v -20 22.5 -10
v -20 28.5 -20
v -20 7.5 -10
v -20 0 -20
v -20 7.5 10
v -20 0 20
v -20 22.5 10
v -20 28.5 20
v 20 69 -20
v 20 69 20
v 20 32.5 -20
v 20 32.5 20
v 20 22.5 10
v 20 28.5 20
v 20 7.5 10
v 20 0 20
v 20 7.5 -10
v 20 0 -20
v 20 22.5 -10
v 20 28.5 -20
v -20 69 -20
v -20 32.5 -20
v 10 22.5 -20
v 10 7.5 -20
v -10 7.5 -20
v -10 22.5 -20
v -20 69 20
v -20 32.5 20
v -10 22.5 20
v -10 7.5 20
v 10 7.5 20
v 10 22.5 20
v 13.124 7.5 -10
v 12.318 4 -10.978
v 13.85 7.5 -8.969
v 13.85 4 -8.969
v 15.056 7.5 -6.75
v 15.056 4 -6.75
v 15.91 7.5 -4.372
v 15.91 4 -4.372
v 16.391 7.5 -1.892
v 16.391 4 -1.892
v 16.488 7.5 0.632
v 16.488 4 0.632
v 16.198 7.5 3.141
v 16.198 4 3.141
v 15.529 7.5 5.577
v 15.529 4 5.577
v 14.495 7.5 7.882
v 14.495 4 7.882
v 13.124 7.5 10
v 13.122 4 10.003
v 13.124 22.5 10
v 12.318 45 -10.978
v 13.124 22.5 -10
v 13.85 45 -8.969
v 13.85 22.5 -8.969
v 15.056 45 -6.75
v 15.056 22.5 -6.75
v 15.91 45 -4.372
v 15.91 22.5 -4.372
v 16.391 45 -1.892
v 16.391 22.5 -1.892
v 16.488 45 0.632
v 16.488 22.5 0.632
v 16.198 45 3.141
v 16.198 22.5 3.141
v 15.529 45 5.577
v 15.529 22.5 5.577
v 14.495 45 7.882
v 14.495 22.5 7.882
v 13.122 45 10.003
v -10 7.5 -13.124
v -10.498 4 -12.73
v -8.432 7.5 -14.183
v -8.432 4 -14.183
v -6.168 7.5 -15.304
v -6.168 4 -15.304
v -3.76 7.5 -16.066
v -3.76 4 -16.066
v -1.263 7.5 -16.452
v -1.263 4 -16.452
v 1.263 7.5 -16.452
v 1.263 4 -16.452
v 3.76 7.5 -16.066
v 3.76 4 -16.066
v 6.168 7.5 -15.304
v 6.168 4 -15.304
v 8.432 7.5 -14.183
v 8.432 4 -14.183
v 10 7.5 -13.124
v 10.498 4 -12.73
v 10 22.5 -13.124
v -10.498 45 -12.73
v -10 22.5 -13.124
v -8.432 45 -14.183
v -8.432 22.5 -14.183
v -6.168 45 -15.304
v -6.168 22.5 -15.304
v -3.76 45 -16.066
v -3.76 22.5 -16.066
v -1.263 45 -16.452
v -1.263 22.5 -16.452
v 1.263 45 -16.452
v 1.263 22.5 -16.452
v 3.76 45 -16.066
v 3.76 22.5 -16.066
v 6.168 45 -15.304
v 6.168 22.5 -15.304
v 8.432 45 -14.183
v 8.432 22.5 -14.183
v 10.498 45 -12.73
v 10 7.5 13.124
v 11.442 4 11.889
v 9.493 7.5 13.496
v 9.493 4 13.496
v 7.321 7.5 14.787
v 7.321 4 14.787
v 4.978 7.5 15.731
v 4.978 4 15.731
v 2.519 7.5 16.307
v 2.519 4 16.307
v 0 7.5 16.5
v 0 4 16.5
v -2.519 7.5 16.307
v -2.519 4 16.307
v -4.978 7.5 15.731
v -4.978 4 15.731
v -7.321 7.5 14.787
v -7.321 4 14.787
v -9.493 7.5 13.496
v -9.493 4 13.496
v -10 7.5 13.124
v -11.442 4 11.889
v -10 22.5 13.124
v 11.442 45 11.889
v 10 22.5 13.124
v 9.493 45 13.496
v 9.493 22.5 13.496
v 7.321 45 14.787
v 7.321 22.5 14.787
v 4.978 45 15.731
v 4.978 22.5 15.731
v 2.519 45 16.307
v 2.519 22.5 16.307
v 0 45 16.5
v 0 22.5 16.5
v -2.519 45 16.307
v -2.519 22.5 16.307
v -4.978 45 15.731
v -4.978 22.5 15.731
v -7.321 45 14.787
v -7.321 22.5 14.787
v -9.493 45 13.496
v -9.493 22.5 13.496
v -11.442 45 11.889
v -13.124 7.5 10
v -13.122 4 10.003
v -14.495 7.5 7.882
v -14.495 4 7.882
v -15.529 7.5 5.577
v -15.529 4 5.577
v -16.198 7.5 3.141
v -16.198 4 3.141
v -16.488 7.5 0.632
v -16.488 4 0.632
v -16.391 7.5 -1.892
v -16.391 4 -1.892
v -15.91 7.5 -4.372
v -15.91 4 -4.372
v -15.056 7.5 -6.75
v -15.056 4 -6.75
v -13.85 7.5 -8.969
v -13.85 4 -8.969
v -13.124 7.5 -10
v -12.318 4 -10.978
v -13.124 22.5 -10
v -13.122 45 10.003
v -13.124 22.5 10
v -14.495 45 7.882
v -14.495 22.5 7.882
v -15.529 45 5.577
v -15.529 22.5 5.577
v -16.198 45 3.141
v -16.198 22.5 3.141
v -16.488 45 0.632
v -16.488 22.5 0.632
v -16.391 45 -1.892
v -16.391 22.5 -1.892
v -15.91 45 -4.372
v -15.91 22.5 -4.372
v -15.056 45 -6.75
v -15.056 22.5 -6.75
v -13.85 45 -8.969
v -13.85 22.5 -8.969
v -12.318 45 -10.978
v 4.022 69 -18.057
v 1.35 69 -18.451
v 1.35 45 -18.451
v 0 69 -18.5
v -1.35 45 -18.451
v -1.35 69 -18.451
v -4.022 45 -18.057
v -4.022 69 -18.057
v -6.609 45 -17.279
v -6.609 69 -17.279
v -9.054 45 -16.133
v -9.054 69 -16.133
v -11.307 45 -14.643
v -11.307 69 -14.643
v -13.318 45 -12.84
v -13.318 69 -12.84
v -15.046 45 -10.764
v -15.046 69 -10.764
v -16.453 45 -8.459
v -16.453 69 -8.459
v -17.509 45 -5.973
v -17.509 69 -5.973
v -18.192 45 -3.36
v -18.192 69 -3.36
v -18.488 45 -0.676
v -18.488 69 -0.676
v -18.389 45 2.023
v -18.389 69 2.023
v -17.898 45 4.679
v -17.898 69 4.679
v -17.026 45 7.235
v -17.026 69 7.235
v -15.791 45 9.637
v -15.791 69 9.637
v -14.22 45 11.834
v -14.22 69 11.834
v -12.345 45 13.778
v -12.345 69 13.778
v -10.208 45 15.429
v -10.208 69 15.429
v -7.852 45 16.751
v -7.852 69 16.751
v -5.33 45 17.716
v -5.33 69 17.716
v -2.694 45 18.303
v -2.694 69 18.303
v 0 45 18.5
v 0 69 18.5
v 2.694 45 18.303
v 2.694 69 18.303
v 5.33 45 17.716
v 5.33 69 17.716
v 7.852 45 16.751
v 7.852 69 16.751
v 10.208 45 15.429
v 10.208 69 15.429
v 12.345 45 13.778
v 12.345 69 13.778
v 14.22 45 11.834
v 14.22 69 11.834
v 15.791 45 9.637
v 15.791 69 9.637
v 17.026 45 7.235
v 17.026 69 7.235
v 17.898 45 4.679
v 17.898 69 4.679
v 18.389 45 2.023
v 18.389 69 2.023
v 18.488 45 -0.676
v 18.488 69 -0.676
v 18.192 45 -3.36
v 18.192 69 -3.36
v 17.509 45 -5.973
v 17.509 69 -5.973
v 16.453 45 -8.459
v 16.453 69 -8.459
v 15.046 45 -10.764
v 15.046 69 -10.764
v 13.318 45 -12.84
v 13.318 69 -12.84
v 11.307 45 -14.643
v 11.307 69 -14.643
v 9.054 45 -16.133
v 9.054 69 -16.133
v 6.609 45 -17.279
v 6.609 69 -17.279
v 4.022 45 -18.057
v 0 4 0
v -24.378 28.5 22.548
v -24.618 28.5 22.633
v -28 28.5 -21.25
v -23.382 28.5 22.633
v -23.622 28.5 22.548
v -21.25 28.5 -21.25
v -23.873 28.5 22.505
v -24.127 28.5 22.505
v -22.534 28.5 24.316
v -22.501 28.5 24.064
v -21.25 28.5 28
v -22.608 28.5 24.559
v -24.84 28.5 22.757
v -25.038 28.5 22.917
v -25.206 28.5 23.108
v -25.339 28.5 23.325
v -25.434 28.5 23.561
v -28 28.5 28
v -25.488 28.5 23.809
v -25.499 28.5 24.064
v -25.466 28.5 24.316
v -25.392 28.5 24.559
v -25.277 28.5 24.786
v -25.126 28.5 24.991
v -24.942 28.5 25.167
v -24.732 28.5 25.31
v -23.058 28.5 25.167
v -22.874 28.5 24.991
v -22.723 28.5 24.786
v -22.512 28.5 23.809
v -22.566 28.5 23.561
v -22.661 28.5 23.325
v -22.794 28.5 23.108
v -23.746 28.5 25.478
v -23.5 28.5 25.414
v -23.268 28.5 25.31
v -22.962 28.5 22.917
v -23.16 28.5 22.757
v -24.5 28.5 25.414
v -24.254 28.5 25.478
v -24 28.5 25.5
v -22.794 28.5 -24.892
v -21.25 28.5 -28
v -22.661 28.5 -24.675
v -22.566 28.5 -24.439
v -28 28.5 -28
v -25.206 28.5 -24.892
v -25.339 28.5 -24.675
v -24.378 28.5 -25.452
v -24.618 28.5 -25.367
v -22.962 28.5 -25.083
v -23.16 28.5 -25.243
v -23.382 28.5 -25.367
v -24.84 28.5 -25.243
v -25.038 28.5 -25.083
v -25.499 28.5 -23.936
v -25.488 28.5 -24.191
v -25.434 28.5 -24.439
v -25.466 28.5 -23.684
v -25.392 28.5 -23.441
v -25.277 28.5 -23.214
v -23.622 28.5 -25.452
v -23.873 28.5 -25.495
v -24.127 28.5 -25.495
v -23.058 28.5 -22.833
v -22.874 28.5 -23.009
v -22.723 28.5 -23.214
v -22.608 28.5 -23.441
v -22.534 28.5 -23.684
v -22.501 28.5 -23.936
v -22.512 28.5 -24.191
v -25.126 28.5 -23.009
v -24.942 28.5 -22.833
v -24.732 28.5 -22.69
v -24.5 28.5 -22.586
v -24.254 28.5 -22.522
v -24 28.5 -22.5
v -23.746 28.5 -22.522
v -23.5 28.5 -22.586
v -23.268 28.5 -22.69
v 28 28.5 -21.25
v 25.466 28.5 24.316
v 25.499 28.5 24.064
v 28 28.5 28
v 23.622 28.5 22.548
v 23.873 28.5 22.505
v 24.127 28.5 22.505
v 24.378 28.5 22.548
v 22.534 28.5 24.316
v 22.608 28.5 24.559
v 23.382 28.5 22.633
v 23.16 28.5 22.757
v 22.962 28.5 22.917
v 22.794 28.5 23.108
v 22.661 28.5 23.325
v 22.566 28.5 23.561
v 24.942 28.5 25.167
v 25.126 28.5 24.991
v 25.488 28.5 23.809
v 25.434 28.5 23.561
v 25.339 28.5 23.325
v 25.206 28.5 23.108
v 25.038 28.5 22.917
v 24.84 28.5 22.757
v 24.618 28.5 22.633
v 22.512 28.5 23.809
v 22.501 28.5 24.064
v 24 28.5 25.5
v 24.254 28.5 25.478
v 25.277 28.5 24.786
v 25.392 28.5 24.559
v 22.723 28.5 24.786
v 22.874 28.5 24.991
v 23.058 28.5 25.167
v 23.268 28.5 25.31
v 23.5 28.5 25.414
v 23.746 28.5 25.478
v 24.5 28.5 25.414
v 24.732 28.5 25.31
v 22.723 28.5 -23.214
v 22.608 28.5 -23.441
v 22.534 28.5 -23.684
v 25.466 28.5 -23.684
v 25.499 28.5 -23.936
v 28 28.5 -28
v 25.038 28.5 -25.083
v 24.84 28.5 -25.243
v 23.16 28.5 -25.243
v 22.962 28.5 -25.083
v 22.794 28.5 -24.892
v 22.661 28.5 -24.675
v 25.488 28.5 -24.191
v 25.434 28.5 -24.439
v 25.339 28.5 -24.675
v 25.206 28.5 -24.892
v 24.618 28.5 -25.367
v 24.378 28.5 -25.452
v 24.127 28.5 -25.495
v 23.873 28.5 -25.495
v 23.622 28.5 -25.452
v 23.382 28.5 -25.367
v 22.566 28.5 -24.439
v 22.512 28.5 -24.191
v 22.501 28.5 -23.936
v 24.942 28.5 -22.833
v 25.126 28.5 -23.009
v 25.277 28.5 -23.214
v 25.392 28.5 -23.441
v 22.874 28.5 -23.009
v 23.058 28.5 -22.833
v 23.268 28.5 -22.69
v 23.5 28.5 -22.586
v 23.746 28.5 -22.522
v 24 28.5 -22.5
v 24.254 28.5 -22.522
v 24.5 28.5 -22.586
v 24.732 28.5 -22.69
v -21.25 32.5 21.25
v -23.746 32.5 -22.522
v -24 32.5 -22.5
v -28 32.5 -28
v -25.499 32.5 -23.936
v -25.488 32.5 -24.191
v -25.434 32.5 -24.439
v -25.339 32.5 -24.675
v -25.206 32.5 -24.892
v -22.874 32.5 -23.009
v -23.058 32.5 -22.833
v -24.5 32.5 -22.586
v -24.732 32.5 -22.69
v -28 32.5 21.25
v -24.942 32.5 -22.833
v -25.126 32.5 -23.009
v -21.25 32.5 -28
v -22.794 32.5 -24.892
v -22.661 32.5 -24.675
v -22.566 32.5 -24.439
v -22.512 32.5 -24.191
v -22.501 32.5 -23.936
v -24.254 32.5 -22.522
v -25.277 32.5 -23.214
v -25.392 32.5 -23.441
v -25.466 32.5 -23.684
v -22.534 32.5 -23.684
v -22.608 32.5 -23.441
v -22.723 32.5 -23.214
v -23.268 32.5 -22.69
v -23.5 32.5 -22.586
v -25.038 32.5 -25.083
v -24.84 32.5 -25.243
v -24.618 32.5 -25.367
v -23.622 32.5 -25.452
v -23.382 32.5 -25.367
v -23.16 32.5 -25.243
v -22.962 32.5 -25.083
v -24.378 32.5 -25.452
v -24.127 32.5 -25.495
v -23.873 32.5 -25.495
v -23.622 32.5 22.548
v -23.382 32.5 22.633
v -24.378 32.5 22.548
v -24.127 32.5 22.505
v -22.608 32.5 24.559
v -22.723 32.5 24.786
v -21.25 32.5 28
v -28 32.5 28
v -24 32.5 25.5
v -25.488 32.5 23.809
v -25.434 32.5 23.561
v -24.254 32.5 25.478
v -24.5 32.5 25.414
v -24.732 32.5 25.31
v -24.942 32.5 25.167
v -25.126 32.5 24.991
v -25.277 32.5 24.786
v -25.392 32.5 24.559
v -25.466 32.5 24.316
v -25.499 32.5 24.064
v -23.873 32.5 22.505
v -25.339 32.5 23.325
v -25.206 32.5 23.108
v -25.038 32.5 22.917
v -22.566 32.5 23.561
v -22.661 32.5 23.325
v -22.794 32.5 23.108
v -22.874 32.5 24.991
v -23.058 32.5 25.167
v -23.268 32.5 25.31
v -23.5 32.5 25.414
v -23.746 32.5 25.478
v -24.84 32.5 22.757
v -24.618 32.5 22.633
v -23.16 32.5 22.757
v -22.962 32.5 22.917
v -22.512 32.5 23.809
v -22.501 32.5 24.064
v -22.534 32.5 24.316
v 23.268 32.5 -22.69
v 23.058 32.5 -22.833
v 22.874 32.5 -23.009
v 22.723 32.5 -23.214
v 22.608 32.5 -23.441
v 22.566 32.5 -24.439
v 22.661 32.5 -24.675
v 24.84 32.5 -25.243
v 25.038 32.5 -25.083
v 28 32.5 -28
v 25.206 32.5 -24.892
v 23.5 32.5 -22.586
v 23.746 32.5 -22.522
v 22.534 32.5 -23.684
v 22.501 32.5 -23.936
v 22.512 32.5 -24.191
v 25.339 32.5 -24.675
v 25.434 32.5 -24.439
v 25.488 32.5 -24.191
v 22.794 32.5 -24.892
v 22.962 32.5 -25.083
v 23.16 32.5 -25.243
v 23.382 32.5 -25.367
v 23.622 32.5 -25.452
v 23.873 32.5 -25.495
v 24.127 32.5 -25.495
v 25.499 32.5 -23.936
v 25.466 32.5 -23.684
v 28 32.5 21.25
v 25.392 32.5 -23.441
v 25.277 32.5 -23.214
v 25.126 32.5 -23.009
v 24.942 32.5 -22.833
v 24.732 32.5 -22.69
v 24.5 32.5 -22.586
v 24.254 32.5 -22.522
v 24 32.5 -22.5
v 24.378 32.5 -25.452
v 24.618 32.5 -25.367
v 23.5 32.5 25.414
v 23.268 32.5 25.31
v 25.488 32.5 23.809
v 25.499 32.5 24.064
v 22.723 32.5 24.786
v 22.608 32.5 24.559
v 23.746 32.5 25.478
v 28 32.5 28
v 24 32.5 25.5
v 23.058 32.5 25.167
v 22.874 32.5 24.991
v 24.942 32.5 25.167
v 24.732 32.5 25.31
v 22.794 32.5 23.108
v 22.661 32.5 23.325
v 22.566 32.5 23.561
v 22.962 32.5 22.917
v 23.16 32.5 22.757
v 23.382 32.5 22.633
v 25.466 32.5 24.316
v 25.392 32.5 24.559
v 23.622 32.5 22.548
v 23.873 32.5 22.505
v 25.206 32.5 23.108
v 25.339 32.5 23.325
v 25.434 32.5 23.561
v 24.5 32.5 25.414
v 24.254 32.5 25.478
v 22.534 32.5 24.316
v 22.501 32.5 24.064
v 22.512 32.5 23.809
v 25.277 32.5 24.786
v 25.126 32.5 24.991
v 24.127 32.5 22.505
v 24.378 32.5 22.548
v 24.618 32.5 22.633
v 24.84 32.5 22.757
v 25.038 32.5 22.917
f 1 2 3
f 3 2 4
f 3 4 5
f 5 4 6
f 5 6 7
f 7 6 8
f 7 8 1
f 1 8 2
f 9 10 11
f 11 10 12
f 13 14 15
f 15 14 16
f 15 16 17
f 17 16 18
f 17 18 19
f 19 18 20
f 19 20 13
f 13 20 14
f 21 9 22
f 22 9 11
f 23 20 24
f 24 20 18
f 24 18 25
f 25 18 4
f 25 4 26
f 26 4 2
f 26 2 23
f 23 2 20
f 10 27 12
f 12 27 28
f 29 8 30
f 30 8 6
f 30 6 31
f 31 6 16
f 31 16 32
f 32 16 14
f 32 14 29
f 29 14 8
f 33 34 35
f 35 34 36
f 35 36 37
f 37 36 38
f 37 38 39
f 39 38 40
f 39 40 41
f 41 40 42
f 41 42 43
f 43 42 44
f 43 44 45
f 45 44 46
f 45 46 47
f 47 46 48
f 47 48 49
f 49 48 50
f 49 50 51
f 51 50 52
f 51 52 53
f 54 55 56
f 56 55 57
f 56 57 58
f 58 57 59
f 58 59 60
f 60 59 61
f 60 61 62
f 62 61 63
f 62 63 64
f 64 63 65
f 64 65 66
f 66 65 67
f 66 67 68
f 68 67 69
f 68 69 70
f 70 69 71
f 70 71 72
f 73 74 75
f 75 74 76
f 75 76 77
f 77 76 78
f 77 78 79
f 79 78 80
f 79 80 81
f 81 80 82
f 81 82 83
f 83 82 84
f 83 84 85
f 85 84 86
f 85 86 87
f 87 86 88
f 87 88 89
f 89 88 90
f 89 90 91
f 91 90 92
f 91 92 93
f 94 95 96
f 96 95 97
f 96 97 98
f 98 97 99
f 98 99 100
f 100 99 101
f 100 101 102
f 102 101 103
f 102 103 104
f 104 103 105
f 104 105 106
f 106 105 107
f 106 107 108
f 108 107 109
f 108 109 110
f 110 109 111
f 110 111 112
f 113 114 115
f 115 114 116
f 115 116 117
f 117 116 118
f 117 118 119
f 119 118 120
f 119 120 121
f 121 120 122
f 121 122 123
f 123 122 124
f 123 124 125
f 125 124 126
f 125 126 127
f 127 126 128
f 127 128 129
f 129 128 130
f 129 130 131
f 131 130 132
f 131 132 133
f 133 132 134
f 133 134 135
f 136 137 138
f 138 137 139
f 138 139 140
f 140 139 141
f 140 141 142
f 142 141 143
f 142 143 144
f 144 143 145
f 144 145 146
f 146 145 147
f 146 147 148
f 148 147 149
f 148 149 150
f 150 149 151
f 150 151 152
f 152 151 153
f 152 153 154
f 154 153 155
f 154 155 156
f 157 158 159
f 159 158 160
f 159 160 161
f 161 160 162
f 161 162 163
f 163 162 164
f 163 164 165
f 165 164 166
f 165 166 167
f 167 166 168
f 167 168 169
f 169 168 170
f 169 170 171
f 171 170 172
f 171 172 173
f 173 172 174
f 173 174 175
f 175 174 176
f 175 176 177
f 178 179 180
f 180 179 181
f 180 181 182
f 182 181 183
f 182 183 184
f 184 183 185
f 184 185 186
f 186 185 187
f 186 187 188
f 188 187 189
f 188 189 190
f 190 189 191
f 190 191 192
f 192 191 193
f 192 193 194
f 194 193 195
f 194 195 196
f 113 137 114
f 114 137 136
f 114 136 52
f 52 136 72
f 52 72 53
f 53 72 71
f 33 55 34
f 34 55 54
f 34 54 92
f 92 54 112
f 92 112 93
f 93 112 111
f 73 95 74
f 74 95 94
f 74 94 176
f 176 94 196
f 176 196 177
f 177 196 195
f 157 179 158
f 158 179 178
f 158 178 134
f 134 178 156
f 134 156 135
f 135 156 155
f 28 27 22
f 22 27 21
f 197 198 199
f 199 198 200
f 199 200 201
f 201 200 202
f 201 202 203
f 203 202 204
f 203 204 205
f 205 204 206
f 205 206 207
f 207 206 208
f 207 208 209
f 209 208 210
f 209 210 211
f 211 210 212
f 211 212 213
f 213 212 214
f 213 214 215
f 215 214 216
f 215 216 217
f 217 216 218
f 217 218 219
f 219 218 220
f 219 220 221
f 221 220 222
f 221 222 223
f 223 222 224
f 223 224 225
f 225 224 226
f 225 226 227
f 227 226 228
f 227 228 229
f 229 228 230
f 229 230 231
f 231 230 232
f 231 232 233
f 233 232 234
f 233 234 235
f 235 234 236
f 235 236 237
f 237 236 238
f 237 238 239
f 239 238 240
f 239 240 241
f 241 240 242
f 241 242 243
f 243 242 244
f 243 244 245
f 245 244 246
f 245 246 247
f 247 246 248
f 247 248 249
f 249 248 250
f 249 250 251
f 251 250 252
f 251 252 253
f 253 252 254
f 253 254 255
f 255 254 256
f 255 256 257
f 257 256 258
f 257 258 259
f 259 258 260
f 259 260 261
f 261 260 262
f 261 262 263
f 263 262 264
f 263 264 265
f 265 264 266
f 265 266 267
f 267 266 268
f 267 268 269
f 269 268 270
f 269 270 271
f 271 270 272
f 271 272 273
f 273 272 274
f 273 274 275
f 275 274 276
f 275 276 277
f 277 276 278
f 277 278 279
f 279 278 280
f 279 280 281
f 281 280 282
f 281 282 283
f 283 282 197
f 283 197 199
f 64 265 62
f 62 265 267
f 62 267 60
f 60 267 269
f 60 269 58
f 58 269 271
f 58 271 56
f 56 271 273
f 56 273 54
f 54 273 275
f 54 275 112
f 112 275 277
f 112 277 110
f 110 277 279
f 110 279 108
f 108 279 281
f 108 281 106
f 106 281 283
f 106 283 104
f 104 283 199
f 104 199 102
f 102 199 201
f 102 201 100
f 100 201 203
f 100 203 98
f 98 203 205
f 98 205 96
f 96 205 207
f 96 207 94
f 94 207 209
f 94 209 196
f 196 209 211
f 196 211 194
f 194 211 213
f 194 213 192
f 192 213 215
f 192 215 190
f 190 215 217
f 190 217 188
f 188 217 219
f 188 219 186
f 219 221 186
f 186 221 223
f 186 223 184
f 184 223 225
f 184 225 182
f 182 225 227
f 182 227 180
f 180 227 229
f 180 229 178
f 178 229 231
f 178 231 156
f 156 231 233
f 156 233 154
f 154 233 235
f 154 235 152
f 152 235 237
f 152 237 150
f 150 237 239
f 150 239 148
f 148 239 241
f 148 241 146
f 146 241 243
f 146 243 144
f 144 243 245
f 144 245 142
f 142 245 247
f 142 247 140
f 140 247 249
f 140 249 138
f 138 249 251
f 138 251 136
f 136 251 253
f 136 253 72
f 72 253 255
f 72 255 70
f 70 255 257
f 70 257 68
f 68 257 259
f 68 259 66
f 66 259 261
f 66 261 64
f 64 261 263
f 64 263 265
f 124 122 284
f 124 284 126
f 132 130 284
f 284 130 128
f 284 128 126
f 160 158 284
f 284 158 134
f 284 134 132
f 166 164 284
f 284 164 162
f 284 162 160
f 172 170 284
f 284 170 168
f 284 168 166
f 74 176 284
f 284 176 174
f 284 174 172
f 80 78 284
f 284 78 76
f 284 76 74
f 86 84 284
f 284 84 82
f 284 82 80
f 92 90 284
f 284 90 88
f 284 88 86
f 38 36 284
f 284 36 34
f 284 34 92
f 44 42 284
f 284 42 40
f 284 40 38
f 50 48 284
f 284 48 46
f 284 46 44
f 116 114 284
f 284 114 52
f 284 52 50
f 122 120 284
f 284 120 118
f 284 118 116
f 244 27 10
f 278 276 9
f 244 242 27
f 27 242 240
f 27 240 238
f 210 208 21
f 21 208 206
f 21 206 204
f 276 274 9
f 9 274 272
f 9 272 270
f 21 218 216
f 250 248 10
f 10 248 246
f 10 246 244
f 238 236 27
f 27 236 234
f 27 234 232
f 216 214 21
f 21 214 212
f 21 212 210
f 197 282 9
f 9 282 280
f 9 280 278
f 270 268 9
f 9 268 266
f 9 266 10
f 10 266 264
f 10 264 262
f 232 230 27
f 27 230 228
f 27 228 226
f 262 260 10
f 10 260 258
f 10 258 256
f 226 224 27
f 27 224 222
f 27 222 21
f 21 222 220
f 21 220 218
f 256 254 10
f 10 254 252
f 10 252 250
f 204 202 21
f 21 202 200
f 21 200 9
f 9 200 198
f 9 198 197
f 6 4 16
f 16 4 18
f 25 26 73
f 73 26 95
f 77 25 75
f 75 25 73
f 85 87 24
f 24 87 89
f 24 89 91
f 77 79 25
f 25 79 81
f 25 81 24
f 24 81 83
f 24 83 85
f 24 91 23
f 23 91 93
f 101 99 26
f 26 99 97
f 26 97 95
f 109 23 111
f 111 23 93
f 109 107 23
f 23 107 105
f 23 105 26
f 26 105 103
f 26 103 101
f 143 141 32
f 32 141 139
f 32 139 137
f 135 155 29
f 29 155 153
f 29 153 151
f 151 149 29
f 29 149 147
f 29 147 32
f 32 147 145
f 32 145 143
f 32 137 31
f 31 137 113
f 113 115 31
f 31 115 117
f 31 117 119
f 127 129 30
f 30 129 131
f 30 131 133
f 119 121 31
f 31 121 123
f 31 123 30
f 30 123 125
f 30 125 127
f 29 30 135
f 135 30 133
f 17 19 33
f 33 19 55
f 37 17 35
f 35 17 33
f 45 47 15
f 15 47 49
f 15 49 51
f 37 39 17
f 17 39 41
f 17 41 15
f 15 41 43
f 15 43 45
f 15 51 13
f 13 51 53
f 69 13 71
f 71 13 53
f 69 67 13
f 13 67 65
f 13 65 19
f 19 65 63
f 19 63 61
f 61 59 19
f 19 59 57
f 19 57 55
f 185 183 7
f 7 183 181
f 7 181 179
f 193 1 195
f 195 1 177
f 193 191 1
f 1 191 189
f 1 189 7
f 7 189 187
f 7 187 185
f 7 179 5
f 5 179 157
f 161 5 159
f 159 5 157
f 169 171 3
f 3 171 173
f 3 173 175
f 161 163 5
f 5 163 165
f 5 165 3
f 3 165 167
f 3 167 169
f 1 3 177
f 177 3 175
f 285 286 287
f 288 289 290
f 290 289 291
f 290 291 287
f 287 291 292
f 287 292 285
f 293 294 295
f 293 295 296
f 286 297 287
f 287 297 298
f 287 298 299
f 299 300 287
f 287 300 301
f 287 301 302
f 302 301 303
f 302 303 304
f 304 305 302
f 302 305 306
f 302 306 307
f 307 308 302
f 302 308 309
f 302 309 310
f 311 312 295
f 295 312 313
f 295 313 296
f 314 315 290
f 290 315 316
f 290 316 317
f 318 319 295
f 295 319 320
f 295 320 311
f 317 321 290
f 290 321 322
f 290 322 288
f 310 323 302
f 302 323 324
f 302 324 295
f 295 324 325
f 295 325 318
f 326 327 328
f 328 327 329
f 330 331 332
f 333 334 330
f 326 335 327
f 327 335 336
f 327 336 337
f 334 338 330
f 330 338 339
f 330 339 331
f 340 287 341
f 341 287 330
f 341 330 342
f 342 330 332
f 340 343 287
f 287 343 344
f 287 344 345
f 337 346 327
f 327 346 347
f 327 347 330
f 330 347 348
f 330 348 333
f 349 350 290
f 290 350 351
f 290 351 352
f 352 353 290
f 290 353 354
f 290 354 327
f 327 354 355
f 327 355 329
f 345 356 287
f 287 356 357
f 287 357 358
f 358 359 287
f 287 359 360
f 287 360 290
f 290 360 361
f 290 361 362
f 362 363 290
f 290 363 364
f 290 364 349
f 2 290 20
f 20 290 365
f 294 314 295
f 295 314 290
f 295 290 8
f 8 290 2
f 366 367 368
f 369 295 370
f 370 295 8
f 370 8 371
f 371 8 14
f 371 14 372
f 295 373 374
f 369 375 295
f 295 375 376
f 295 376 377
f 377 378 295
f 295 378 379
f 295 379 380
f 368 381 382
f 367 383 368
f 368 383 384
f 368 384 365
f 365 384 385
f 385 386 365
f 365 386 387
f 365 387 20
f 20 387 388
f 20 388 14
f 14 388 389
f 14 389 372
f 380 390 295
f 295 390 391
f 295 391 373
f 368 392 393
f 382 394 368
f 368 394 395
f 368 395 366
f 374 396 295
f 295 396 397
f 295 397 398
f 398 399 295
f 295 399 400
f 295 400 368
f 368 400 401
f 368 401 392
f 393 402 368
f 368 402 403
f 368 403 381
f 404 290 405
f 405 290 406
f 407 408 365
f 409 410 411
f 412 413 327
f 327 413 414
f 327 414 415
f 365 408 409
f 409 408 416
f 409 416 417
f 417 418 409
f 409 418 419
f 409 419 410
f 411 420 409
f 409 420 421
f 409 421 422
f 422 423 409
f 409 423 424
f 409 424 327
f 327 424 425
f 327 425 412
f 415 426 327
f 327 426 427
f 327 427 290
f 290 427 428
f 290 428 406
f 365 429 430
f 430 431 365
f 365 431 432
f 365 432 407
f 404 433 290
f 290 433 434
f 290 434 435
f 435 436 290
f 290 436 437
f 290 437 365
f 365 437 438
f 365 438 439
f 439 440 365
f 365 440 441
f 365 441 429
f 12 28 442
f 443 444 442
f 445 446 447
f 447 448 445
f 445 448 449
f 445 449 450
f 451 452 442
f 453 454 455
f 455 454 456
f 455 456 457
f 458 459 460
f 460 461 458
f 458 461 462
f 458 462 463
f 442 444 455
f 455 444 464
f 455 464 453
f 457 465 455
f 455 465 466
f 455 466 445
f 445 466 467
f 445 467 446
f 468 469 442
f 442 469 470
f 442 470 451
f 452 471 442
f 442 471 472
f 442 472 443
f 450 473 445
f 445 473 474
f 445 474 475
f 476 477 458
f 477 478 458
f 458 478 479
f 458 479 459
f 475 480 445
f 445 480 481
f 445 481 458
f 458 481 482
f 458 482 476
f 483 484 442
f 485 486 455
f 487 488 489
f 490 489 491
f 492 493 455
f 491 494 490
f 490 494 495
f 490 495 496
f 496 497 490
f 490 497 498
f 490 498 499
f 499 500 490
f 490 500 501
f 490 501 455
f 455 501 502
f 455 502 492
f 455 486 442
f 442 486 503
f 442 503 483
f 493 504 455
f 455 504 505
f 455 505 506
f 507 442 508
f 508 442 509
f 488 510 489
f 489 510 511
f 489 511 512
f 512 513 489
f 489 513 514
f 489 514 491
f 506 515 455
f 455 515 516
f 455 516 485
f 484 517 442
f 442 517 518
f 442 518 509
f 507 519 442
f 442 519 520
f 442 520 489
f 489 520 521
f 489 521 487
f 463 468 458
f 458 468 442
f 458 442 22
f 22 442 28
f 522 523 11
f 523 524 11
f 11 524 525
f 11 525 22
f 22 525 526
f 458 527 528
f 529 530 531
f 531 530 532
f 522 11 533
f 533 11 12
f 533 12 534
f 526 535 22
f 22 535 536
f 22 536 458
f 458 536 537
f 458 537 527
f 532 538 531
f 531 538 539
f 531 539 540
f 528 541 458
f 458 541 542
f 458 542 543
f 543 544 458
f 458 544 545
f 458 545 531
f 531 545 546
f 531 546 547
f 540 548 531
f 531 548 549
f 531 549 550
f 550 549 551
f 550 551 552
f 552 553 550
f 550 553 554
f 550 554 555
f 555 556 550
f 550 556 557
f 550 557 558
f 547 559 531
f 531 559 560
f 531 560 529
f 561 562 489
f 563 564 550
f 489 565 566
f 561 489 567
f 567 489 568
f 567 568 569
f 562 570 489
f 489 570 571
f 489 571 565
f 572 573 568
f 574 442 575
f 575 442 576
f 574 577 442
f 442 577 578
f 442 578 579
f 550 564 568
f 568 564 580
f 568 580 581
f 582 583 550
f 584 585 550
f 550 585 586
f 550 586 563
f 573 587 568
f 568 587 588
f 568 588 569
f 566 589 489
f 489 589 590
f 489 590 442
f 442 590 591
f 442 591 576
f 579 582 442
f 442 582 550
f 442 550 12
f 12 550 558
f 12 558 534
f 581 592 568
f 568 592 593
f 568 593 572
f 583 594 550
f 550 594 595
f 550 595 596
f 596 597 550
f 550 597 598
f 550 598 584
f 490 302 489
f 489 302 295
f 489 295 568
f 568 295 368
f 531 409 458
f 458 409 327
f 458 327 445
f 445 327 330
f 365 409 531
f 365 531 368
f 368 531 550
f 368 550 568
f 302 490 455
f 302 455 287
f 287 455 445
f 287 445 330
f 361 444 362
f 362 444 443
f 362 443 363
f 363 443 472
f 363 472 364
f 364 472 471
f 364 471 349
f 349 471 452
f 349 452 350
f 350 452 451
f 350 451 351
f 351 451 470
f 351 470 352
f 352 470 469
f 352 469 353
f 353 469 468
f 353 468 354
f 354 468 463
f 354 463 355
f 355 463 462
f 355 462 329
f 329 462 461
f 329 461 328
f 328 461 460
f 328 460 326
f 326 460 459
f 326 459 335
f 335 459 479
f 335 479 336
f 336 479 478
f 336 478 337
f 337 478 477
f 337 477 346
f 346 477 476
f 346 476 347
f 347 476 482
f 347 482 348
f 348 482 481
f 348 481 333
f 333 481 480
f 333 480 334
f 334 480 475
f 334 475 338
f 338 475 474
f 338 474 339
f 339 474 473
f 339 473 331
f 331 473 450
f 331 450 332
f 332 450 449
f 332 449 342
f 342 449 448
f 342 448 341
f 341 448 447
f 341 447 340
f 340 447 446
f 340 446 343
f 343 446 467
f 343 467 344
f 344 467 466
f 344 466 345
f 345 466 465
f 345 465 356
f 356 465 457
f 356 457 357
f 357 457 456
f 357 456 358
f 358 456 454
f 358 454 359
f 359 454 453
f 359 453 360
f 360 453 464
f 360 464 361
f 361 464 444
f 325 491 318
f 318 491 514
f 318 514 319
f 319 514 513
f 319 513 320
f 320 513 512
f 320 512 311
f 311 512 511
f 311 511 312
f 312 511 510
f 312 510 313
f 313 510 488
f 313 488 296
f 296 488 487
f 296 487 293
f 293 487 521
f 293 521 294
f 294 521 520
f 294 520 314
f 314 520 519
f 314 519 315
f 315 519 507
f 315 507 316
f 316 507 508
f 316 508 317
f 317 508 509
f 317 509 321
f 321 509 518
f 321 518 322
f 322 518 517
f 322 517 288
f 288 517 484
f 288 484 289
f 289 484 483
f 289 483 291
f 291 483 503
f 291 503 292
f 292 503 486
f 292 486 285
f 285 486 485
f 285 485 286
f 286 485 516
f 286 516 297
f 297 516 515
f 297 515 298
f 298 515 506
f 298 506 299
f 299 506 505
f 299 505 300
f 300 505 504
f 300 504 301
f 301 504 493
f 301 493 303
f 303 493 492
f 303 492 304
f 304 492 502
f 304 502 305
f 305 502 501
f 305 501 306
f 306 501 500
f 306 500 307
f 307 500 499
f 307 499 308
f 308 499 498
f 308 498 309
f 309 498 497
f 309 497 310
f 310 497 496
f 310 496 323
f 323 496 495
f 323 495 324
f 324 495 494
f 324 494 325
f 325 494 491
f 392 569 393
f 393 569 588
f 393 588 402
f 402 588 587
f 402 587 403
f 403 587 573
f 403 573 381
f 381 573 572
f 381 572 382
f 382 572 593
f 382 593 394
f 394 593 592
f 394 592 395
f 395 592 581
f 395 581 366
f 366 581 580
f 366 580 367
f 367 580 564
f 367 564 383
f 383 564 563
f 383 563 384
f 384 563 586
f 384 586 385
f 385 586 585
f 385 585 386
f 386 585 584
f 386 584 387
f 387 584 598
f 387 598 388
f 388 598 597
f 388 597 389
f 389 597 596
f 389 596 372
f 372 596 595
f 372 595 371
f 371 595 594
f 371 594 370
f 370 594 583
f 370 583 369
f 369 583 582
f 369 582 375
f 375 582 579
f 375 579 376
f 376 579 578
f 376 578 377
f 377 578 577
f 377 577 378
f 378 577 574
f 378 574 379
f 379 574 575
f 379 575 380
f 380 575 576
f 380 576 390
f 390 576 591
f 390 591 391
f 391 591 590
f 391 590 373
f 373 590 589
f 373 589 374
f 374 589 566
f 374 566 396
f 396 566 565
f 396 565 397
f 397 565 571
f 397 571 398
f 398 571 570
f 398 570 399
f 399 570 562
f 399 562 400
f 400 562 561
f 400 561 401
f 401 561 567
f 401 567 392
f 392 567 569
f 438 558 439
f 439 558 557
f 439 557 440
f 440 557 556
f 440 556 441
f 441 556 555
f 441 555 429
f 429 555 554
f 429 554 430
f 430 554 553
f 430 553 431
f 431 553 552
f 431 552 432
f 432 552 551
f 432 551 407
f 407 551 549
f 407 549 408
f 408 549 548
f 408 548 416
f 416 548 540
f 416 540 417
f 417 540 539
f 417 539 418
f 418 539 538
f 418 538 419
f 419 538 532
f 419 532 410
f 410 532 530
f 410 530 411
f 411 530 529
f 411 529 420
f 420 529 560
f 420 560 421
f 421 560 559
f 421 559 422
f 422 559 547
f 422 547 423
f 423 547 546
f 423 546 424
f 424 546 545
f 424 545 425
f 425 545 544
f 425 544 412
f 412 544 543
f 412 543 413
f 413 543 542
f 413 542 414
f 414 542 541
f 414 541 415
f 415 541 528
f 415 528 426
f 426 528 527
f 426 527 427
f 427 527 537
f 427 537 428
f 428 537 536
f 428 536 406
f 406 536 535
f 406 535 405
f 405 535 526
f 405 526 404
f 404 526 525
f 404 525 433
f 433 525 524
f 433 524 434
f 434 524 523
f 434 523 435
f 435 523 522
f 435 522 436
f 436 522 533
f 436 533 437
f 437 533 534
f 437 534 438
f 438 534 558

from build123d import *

# Parameters (mm, degrees)
SKETCH1_W           = 40
SKETCH1_H           = 40
BOSS_EXTRUDE1_DEPTH = 90
SKETCH2_R           = 18.5
CUT_EXTRUDE1_DEPTH  = 45
SKETCH3_R           = 16.5
CUT_EXTRUDE2_DEPTH  = 41
SKETCH4_W           = 40
SKETCH4_H           = 40
CUT_EXTRUDE3_DEPTH  = 21
SKETCH6_W           = 20
SKETCH6_H           = 15
CUT_EXTRUDE4_DEPTH  = 83.225300243
SKETCH8_W           = 20
SKETCH8_H           = 15
CUT_EXTRUDE5_DEPTH  = 83.225300243
SKETCH16_W          = 40
SKETCH16_H          = 4
BOSS_EXTRUDE3_DEPTH = 8
SKETCH17_W          = 40
SKETCH17_H          = 4
BOSS_EXTRUDE4_DEPTH = 8
SKETCH18_W          = 56
SKETCH18_H          = 4
BOSS_EXTRUDE5_DEPTH = 8
SKETCH19_W          = 56
SKETCH19_H          = 4
BOSS_EXTRUDE6_DEPTH = 8
SKETCH20_R          = 1.5
CUT_EXTRUDE9_DEPTH  = 54.853969213


with BuildPart() as part:
    # Sketch1 → Boss-Extrude1 (new body)
    with BuildSketch(Plane(origin=(0, 0, 0), x_dir=(1, 0, 0), z_dir=(0, 1, 0))):
        Rectangle(SKETCH1_W, SKETCH1_H)
    extrude(amount=BOSS_EXTRUDE1_DEPTH)

    # Sketch2 → Cut-Extrude1 (cut)
    with BuildSketch(Plane(origin=(0, 90, 0), x_dir=(1, 0, 0), z_dir=(0, 1, 0))):
        with Locations(Location((0, 0, 0), (0, 0, 270))):
            Circle(SKETCH2_R)
    extrude(amount=-CUT_EXTRUDE1_DEPTH, mode=Mode.SUBTRACT)

    # Sketch3 → Cut-Extrude2 (cut)
    with BuildSketch(Plane(origin=(0, 45, 0), x_dir=(1, 0, 0), z_dir=(0, 1, 0))):
        with Locations(Location((0, 0, 0), (0, 0, 270))):
            Circle(SKETCH3_R)
    extrude(amount=-CUT_EXTRUDE2_DEPTH, mode=Mode.SUBTRACT)

    # Sketch4 → Cut-Extrude3 (cut)
    with BuildSketch(Plane(origin=(0, 90, 0), x_dir=(1, 0, 0), z_dir=(0, 1, 0))):
        Rectangle(SKETCH4_W, SKETCH4_H)
    extrude(amount=-CUT_EXTRUDE3_DEPTH, mode=Mode.SUBTRACT)

    # Sketch6 → Cut-Extrude4 (cut, through all)
    with BuildSketch(Plane.XY.offset(20)):
        with Locations((0, 15)):
            Rectangle(SKETCH6_W, SKETCH6_H)
    extrude(amount=-CUT_EXTRUDE4_DEPTH, mode=Mode.SUBTRACT)

    # Sketch8 → Cut-Extrude5 (cut, through all)
    with BuildSketch(Plane.ZY.offset(20)):
        with Locations((0, 15)):
            Rectangle(SKETCH8_W, SKETCH8_H)
    extrude(amount=-CUT_EXTRUDE5_DEPTH, mode=Mode.SUBTRACT)

    # Sketch16 → Boss-Extrude3 (add)
    with BuildSketch(Plane.XY.offset(20)):
        with Locations((0, 30.5)):
            Rectangle(SKETCH16_W, SKETCH16_H)
    extrude(amount=BOSS_EXTRUDE3_DEPTH)

    # Sketch17 → Boss-Extrude4 (add)
    with BuildSketch(Plane(origin=(0, 0, -20), x_dir=(-1, 0, 0), z_dir=(0, 0, -1))):
        with Locations((0, 30.5)):
            Rectangle(SKETCH17_W, SKETCH17_H)
    extrude(amount=BOSS_EXTRUDE4_DEPTH)

    # Sketch18 → Boss-Extrude5 (add)
    with BuildSketch(Plane(origin=(20, 0, 0), x_dir=(0, 0, -1), z_dir=(1, 0, 0))):
        with Locations((0, 30.5)):
            Rectangle(SKETCH18_W, SKETCH18_H)
    extrude(amount=BOSS_EXTRUDE5_DEPTH)

    # Sketch19 → Boss-Extrude6 (add)
    with BuildSketch(Plane.ZY.offset(20)):
        with Locations((0, 30.5)):
            Rectangle(SKETCH19_W, SKETCH19_H)
    extrude(amount=BOSS_EXTRUDE6_DEPTH)

    # Sketch20 → Cut-Extrude9 (cut, through all)
    with BuildSketch(Plane(origin=(0, 32.5, 0), x_dir=(1, 0, 0), z_dir=(0, 1, 0))):
        with Locations(Location((-24, 24, 0), (0, 0, 270))):
            Circle(SKETCH20_R)
        with Locations(Location((24, 24, 0), (0, 0, 270))):
            Circle(SKETCH20_R)
        with Locations(Location((24, -24, 0), (0, 0, 270))):
            Circle(SKETCH20_R)
        with Locations(Location((-24, -24, 0), (0, 0, 270))):
            Circle(SKETCH20_R)
    extrude(amount=-CUT_EXTRUDE9_DEPTH, mode=Mode.SUBTRACT)


solid = part.part
